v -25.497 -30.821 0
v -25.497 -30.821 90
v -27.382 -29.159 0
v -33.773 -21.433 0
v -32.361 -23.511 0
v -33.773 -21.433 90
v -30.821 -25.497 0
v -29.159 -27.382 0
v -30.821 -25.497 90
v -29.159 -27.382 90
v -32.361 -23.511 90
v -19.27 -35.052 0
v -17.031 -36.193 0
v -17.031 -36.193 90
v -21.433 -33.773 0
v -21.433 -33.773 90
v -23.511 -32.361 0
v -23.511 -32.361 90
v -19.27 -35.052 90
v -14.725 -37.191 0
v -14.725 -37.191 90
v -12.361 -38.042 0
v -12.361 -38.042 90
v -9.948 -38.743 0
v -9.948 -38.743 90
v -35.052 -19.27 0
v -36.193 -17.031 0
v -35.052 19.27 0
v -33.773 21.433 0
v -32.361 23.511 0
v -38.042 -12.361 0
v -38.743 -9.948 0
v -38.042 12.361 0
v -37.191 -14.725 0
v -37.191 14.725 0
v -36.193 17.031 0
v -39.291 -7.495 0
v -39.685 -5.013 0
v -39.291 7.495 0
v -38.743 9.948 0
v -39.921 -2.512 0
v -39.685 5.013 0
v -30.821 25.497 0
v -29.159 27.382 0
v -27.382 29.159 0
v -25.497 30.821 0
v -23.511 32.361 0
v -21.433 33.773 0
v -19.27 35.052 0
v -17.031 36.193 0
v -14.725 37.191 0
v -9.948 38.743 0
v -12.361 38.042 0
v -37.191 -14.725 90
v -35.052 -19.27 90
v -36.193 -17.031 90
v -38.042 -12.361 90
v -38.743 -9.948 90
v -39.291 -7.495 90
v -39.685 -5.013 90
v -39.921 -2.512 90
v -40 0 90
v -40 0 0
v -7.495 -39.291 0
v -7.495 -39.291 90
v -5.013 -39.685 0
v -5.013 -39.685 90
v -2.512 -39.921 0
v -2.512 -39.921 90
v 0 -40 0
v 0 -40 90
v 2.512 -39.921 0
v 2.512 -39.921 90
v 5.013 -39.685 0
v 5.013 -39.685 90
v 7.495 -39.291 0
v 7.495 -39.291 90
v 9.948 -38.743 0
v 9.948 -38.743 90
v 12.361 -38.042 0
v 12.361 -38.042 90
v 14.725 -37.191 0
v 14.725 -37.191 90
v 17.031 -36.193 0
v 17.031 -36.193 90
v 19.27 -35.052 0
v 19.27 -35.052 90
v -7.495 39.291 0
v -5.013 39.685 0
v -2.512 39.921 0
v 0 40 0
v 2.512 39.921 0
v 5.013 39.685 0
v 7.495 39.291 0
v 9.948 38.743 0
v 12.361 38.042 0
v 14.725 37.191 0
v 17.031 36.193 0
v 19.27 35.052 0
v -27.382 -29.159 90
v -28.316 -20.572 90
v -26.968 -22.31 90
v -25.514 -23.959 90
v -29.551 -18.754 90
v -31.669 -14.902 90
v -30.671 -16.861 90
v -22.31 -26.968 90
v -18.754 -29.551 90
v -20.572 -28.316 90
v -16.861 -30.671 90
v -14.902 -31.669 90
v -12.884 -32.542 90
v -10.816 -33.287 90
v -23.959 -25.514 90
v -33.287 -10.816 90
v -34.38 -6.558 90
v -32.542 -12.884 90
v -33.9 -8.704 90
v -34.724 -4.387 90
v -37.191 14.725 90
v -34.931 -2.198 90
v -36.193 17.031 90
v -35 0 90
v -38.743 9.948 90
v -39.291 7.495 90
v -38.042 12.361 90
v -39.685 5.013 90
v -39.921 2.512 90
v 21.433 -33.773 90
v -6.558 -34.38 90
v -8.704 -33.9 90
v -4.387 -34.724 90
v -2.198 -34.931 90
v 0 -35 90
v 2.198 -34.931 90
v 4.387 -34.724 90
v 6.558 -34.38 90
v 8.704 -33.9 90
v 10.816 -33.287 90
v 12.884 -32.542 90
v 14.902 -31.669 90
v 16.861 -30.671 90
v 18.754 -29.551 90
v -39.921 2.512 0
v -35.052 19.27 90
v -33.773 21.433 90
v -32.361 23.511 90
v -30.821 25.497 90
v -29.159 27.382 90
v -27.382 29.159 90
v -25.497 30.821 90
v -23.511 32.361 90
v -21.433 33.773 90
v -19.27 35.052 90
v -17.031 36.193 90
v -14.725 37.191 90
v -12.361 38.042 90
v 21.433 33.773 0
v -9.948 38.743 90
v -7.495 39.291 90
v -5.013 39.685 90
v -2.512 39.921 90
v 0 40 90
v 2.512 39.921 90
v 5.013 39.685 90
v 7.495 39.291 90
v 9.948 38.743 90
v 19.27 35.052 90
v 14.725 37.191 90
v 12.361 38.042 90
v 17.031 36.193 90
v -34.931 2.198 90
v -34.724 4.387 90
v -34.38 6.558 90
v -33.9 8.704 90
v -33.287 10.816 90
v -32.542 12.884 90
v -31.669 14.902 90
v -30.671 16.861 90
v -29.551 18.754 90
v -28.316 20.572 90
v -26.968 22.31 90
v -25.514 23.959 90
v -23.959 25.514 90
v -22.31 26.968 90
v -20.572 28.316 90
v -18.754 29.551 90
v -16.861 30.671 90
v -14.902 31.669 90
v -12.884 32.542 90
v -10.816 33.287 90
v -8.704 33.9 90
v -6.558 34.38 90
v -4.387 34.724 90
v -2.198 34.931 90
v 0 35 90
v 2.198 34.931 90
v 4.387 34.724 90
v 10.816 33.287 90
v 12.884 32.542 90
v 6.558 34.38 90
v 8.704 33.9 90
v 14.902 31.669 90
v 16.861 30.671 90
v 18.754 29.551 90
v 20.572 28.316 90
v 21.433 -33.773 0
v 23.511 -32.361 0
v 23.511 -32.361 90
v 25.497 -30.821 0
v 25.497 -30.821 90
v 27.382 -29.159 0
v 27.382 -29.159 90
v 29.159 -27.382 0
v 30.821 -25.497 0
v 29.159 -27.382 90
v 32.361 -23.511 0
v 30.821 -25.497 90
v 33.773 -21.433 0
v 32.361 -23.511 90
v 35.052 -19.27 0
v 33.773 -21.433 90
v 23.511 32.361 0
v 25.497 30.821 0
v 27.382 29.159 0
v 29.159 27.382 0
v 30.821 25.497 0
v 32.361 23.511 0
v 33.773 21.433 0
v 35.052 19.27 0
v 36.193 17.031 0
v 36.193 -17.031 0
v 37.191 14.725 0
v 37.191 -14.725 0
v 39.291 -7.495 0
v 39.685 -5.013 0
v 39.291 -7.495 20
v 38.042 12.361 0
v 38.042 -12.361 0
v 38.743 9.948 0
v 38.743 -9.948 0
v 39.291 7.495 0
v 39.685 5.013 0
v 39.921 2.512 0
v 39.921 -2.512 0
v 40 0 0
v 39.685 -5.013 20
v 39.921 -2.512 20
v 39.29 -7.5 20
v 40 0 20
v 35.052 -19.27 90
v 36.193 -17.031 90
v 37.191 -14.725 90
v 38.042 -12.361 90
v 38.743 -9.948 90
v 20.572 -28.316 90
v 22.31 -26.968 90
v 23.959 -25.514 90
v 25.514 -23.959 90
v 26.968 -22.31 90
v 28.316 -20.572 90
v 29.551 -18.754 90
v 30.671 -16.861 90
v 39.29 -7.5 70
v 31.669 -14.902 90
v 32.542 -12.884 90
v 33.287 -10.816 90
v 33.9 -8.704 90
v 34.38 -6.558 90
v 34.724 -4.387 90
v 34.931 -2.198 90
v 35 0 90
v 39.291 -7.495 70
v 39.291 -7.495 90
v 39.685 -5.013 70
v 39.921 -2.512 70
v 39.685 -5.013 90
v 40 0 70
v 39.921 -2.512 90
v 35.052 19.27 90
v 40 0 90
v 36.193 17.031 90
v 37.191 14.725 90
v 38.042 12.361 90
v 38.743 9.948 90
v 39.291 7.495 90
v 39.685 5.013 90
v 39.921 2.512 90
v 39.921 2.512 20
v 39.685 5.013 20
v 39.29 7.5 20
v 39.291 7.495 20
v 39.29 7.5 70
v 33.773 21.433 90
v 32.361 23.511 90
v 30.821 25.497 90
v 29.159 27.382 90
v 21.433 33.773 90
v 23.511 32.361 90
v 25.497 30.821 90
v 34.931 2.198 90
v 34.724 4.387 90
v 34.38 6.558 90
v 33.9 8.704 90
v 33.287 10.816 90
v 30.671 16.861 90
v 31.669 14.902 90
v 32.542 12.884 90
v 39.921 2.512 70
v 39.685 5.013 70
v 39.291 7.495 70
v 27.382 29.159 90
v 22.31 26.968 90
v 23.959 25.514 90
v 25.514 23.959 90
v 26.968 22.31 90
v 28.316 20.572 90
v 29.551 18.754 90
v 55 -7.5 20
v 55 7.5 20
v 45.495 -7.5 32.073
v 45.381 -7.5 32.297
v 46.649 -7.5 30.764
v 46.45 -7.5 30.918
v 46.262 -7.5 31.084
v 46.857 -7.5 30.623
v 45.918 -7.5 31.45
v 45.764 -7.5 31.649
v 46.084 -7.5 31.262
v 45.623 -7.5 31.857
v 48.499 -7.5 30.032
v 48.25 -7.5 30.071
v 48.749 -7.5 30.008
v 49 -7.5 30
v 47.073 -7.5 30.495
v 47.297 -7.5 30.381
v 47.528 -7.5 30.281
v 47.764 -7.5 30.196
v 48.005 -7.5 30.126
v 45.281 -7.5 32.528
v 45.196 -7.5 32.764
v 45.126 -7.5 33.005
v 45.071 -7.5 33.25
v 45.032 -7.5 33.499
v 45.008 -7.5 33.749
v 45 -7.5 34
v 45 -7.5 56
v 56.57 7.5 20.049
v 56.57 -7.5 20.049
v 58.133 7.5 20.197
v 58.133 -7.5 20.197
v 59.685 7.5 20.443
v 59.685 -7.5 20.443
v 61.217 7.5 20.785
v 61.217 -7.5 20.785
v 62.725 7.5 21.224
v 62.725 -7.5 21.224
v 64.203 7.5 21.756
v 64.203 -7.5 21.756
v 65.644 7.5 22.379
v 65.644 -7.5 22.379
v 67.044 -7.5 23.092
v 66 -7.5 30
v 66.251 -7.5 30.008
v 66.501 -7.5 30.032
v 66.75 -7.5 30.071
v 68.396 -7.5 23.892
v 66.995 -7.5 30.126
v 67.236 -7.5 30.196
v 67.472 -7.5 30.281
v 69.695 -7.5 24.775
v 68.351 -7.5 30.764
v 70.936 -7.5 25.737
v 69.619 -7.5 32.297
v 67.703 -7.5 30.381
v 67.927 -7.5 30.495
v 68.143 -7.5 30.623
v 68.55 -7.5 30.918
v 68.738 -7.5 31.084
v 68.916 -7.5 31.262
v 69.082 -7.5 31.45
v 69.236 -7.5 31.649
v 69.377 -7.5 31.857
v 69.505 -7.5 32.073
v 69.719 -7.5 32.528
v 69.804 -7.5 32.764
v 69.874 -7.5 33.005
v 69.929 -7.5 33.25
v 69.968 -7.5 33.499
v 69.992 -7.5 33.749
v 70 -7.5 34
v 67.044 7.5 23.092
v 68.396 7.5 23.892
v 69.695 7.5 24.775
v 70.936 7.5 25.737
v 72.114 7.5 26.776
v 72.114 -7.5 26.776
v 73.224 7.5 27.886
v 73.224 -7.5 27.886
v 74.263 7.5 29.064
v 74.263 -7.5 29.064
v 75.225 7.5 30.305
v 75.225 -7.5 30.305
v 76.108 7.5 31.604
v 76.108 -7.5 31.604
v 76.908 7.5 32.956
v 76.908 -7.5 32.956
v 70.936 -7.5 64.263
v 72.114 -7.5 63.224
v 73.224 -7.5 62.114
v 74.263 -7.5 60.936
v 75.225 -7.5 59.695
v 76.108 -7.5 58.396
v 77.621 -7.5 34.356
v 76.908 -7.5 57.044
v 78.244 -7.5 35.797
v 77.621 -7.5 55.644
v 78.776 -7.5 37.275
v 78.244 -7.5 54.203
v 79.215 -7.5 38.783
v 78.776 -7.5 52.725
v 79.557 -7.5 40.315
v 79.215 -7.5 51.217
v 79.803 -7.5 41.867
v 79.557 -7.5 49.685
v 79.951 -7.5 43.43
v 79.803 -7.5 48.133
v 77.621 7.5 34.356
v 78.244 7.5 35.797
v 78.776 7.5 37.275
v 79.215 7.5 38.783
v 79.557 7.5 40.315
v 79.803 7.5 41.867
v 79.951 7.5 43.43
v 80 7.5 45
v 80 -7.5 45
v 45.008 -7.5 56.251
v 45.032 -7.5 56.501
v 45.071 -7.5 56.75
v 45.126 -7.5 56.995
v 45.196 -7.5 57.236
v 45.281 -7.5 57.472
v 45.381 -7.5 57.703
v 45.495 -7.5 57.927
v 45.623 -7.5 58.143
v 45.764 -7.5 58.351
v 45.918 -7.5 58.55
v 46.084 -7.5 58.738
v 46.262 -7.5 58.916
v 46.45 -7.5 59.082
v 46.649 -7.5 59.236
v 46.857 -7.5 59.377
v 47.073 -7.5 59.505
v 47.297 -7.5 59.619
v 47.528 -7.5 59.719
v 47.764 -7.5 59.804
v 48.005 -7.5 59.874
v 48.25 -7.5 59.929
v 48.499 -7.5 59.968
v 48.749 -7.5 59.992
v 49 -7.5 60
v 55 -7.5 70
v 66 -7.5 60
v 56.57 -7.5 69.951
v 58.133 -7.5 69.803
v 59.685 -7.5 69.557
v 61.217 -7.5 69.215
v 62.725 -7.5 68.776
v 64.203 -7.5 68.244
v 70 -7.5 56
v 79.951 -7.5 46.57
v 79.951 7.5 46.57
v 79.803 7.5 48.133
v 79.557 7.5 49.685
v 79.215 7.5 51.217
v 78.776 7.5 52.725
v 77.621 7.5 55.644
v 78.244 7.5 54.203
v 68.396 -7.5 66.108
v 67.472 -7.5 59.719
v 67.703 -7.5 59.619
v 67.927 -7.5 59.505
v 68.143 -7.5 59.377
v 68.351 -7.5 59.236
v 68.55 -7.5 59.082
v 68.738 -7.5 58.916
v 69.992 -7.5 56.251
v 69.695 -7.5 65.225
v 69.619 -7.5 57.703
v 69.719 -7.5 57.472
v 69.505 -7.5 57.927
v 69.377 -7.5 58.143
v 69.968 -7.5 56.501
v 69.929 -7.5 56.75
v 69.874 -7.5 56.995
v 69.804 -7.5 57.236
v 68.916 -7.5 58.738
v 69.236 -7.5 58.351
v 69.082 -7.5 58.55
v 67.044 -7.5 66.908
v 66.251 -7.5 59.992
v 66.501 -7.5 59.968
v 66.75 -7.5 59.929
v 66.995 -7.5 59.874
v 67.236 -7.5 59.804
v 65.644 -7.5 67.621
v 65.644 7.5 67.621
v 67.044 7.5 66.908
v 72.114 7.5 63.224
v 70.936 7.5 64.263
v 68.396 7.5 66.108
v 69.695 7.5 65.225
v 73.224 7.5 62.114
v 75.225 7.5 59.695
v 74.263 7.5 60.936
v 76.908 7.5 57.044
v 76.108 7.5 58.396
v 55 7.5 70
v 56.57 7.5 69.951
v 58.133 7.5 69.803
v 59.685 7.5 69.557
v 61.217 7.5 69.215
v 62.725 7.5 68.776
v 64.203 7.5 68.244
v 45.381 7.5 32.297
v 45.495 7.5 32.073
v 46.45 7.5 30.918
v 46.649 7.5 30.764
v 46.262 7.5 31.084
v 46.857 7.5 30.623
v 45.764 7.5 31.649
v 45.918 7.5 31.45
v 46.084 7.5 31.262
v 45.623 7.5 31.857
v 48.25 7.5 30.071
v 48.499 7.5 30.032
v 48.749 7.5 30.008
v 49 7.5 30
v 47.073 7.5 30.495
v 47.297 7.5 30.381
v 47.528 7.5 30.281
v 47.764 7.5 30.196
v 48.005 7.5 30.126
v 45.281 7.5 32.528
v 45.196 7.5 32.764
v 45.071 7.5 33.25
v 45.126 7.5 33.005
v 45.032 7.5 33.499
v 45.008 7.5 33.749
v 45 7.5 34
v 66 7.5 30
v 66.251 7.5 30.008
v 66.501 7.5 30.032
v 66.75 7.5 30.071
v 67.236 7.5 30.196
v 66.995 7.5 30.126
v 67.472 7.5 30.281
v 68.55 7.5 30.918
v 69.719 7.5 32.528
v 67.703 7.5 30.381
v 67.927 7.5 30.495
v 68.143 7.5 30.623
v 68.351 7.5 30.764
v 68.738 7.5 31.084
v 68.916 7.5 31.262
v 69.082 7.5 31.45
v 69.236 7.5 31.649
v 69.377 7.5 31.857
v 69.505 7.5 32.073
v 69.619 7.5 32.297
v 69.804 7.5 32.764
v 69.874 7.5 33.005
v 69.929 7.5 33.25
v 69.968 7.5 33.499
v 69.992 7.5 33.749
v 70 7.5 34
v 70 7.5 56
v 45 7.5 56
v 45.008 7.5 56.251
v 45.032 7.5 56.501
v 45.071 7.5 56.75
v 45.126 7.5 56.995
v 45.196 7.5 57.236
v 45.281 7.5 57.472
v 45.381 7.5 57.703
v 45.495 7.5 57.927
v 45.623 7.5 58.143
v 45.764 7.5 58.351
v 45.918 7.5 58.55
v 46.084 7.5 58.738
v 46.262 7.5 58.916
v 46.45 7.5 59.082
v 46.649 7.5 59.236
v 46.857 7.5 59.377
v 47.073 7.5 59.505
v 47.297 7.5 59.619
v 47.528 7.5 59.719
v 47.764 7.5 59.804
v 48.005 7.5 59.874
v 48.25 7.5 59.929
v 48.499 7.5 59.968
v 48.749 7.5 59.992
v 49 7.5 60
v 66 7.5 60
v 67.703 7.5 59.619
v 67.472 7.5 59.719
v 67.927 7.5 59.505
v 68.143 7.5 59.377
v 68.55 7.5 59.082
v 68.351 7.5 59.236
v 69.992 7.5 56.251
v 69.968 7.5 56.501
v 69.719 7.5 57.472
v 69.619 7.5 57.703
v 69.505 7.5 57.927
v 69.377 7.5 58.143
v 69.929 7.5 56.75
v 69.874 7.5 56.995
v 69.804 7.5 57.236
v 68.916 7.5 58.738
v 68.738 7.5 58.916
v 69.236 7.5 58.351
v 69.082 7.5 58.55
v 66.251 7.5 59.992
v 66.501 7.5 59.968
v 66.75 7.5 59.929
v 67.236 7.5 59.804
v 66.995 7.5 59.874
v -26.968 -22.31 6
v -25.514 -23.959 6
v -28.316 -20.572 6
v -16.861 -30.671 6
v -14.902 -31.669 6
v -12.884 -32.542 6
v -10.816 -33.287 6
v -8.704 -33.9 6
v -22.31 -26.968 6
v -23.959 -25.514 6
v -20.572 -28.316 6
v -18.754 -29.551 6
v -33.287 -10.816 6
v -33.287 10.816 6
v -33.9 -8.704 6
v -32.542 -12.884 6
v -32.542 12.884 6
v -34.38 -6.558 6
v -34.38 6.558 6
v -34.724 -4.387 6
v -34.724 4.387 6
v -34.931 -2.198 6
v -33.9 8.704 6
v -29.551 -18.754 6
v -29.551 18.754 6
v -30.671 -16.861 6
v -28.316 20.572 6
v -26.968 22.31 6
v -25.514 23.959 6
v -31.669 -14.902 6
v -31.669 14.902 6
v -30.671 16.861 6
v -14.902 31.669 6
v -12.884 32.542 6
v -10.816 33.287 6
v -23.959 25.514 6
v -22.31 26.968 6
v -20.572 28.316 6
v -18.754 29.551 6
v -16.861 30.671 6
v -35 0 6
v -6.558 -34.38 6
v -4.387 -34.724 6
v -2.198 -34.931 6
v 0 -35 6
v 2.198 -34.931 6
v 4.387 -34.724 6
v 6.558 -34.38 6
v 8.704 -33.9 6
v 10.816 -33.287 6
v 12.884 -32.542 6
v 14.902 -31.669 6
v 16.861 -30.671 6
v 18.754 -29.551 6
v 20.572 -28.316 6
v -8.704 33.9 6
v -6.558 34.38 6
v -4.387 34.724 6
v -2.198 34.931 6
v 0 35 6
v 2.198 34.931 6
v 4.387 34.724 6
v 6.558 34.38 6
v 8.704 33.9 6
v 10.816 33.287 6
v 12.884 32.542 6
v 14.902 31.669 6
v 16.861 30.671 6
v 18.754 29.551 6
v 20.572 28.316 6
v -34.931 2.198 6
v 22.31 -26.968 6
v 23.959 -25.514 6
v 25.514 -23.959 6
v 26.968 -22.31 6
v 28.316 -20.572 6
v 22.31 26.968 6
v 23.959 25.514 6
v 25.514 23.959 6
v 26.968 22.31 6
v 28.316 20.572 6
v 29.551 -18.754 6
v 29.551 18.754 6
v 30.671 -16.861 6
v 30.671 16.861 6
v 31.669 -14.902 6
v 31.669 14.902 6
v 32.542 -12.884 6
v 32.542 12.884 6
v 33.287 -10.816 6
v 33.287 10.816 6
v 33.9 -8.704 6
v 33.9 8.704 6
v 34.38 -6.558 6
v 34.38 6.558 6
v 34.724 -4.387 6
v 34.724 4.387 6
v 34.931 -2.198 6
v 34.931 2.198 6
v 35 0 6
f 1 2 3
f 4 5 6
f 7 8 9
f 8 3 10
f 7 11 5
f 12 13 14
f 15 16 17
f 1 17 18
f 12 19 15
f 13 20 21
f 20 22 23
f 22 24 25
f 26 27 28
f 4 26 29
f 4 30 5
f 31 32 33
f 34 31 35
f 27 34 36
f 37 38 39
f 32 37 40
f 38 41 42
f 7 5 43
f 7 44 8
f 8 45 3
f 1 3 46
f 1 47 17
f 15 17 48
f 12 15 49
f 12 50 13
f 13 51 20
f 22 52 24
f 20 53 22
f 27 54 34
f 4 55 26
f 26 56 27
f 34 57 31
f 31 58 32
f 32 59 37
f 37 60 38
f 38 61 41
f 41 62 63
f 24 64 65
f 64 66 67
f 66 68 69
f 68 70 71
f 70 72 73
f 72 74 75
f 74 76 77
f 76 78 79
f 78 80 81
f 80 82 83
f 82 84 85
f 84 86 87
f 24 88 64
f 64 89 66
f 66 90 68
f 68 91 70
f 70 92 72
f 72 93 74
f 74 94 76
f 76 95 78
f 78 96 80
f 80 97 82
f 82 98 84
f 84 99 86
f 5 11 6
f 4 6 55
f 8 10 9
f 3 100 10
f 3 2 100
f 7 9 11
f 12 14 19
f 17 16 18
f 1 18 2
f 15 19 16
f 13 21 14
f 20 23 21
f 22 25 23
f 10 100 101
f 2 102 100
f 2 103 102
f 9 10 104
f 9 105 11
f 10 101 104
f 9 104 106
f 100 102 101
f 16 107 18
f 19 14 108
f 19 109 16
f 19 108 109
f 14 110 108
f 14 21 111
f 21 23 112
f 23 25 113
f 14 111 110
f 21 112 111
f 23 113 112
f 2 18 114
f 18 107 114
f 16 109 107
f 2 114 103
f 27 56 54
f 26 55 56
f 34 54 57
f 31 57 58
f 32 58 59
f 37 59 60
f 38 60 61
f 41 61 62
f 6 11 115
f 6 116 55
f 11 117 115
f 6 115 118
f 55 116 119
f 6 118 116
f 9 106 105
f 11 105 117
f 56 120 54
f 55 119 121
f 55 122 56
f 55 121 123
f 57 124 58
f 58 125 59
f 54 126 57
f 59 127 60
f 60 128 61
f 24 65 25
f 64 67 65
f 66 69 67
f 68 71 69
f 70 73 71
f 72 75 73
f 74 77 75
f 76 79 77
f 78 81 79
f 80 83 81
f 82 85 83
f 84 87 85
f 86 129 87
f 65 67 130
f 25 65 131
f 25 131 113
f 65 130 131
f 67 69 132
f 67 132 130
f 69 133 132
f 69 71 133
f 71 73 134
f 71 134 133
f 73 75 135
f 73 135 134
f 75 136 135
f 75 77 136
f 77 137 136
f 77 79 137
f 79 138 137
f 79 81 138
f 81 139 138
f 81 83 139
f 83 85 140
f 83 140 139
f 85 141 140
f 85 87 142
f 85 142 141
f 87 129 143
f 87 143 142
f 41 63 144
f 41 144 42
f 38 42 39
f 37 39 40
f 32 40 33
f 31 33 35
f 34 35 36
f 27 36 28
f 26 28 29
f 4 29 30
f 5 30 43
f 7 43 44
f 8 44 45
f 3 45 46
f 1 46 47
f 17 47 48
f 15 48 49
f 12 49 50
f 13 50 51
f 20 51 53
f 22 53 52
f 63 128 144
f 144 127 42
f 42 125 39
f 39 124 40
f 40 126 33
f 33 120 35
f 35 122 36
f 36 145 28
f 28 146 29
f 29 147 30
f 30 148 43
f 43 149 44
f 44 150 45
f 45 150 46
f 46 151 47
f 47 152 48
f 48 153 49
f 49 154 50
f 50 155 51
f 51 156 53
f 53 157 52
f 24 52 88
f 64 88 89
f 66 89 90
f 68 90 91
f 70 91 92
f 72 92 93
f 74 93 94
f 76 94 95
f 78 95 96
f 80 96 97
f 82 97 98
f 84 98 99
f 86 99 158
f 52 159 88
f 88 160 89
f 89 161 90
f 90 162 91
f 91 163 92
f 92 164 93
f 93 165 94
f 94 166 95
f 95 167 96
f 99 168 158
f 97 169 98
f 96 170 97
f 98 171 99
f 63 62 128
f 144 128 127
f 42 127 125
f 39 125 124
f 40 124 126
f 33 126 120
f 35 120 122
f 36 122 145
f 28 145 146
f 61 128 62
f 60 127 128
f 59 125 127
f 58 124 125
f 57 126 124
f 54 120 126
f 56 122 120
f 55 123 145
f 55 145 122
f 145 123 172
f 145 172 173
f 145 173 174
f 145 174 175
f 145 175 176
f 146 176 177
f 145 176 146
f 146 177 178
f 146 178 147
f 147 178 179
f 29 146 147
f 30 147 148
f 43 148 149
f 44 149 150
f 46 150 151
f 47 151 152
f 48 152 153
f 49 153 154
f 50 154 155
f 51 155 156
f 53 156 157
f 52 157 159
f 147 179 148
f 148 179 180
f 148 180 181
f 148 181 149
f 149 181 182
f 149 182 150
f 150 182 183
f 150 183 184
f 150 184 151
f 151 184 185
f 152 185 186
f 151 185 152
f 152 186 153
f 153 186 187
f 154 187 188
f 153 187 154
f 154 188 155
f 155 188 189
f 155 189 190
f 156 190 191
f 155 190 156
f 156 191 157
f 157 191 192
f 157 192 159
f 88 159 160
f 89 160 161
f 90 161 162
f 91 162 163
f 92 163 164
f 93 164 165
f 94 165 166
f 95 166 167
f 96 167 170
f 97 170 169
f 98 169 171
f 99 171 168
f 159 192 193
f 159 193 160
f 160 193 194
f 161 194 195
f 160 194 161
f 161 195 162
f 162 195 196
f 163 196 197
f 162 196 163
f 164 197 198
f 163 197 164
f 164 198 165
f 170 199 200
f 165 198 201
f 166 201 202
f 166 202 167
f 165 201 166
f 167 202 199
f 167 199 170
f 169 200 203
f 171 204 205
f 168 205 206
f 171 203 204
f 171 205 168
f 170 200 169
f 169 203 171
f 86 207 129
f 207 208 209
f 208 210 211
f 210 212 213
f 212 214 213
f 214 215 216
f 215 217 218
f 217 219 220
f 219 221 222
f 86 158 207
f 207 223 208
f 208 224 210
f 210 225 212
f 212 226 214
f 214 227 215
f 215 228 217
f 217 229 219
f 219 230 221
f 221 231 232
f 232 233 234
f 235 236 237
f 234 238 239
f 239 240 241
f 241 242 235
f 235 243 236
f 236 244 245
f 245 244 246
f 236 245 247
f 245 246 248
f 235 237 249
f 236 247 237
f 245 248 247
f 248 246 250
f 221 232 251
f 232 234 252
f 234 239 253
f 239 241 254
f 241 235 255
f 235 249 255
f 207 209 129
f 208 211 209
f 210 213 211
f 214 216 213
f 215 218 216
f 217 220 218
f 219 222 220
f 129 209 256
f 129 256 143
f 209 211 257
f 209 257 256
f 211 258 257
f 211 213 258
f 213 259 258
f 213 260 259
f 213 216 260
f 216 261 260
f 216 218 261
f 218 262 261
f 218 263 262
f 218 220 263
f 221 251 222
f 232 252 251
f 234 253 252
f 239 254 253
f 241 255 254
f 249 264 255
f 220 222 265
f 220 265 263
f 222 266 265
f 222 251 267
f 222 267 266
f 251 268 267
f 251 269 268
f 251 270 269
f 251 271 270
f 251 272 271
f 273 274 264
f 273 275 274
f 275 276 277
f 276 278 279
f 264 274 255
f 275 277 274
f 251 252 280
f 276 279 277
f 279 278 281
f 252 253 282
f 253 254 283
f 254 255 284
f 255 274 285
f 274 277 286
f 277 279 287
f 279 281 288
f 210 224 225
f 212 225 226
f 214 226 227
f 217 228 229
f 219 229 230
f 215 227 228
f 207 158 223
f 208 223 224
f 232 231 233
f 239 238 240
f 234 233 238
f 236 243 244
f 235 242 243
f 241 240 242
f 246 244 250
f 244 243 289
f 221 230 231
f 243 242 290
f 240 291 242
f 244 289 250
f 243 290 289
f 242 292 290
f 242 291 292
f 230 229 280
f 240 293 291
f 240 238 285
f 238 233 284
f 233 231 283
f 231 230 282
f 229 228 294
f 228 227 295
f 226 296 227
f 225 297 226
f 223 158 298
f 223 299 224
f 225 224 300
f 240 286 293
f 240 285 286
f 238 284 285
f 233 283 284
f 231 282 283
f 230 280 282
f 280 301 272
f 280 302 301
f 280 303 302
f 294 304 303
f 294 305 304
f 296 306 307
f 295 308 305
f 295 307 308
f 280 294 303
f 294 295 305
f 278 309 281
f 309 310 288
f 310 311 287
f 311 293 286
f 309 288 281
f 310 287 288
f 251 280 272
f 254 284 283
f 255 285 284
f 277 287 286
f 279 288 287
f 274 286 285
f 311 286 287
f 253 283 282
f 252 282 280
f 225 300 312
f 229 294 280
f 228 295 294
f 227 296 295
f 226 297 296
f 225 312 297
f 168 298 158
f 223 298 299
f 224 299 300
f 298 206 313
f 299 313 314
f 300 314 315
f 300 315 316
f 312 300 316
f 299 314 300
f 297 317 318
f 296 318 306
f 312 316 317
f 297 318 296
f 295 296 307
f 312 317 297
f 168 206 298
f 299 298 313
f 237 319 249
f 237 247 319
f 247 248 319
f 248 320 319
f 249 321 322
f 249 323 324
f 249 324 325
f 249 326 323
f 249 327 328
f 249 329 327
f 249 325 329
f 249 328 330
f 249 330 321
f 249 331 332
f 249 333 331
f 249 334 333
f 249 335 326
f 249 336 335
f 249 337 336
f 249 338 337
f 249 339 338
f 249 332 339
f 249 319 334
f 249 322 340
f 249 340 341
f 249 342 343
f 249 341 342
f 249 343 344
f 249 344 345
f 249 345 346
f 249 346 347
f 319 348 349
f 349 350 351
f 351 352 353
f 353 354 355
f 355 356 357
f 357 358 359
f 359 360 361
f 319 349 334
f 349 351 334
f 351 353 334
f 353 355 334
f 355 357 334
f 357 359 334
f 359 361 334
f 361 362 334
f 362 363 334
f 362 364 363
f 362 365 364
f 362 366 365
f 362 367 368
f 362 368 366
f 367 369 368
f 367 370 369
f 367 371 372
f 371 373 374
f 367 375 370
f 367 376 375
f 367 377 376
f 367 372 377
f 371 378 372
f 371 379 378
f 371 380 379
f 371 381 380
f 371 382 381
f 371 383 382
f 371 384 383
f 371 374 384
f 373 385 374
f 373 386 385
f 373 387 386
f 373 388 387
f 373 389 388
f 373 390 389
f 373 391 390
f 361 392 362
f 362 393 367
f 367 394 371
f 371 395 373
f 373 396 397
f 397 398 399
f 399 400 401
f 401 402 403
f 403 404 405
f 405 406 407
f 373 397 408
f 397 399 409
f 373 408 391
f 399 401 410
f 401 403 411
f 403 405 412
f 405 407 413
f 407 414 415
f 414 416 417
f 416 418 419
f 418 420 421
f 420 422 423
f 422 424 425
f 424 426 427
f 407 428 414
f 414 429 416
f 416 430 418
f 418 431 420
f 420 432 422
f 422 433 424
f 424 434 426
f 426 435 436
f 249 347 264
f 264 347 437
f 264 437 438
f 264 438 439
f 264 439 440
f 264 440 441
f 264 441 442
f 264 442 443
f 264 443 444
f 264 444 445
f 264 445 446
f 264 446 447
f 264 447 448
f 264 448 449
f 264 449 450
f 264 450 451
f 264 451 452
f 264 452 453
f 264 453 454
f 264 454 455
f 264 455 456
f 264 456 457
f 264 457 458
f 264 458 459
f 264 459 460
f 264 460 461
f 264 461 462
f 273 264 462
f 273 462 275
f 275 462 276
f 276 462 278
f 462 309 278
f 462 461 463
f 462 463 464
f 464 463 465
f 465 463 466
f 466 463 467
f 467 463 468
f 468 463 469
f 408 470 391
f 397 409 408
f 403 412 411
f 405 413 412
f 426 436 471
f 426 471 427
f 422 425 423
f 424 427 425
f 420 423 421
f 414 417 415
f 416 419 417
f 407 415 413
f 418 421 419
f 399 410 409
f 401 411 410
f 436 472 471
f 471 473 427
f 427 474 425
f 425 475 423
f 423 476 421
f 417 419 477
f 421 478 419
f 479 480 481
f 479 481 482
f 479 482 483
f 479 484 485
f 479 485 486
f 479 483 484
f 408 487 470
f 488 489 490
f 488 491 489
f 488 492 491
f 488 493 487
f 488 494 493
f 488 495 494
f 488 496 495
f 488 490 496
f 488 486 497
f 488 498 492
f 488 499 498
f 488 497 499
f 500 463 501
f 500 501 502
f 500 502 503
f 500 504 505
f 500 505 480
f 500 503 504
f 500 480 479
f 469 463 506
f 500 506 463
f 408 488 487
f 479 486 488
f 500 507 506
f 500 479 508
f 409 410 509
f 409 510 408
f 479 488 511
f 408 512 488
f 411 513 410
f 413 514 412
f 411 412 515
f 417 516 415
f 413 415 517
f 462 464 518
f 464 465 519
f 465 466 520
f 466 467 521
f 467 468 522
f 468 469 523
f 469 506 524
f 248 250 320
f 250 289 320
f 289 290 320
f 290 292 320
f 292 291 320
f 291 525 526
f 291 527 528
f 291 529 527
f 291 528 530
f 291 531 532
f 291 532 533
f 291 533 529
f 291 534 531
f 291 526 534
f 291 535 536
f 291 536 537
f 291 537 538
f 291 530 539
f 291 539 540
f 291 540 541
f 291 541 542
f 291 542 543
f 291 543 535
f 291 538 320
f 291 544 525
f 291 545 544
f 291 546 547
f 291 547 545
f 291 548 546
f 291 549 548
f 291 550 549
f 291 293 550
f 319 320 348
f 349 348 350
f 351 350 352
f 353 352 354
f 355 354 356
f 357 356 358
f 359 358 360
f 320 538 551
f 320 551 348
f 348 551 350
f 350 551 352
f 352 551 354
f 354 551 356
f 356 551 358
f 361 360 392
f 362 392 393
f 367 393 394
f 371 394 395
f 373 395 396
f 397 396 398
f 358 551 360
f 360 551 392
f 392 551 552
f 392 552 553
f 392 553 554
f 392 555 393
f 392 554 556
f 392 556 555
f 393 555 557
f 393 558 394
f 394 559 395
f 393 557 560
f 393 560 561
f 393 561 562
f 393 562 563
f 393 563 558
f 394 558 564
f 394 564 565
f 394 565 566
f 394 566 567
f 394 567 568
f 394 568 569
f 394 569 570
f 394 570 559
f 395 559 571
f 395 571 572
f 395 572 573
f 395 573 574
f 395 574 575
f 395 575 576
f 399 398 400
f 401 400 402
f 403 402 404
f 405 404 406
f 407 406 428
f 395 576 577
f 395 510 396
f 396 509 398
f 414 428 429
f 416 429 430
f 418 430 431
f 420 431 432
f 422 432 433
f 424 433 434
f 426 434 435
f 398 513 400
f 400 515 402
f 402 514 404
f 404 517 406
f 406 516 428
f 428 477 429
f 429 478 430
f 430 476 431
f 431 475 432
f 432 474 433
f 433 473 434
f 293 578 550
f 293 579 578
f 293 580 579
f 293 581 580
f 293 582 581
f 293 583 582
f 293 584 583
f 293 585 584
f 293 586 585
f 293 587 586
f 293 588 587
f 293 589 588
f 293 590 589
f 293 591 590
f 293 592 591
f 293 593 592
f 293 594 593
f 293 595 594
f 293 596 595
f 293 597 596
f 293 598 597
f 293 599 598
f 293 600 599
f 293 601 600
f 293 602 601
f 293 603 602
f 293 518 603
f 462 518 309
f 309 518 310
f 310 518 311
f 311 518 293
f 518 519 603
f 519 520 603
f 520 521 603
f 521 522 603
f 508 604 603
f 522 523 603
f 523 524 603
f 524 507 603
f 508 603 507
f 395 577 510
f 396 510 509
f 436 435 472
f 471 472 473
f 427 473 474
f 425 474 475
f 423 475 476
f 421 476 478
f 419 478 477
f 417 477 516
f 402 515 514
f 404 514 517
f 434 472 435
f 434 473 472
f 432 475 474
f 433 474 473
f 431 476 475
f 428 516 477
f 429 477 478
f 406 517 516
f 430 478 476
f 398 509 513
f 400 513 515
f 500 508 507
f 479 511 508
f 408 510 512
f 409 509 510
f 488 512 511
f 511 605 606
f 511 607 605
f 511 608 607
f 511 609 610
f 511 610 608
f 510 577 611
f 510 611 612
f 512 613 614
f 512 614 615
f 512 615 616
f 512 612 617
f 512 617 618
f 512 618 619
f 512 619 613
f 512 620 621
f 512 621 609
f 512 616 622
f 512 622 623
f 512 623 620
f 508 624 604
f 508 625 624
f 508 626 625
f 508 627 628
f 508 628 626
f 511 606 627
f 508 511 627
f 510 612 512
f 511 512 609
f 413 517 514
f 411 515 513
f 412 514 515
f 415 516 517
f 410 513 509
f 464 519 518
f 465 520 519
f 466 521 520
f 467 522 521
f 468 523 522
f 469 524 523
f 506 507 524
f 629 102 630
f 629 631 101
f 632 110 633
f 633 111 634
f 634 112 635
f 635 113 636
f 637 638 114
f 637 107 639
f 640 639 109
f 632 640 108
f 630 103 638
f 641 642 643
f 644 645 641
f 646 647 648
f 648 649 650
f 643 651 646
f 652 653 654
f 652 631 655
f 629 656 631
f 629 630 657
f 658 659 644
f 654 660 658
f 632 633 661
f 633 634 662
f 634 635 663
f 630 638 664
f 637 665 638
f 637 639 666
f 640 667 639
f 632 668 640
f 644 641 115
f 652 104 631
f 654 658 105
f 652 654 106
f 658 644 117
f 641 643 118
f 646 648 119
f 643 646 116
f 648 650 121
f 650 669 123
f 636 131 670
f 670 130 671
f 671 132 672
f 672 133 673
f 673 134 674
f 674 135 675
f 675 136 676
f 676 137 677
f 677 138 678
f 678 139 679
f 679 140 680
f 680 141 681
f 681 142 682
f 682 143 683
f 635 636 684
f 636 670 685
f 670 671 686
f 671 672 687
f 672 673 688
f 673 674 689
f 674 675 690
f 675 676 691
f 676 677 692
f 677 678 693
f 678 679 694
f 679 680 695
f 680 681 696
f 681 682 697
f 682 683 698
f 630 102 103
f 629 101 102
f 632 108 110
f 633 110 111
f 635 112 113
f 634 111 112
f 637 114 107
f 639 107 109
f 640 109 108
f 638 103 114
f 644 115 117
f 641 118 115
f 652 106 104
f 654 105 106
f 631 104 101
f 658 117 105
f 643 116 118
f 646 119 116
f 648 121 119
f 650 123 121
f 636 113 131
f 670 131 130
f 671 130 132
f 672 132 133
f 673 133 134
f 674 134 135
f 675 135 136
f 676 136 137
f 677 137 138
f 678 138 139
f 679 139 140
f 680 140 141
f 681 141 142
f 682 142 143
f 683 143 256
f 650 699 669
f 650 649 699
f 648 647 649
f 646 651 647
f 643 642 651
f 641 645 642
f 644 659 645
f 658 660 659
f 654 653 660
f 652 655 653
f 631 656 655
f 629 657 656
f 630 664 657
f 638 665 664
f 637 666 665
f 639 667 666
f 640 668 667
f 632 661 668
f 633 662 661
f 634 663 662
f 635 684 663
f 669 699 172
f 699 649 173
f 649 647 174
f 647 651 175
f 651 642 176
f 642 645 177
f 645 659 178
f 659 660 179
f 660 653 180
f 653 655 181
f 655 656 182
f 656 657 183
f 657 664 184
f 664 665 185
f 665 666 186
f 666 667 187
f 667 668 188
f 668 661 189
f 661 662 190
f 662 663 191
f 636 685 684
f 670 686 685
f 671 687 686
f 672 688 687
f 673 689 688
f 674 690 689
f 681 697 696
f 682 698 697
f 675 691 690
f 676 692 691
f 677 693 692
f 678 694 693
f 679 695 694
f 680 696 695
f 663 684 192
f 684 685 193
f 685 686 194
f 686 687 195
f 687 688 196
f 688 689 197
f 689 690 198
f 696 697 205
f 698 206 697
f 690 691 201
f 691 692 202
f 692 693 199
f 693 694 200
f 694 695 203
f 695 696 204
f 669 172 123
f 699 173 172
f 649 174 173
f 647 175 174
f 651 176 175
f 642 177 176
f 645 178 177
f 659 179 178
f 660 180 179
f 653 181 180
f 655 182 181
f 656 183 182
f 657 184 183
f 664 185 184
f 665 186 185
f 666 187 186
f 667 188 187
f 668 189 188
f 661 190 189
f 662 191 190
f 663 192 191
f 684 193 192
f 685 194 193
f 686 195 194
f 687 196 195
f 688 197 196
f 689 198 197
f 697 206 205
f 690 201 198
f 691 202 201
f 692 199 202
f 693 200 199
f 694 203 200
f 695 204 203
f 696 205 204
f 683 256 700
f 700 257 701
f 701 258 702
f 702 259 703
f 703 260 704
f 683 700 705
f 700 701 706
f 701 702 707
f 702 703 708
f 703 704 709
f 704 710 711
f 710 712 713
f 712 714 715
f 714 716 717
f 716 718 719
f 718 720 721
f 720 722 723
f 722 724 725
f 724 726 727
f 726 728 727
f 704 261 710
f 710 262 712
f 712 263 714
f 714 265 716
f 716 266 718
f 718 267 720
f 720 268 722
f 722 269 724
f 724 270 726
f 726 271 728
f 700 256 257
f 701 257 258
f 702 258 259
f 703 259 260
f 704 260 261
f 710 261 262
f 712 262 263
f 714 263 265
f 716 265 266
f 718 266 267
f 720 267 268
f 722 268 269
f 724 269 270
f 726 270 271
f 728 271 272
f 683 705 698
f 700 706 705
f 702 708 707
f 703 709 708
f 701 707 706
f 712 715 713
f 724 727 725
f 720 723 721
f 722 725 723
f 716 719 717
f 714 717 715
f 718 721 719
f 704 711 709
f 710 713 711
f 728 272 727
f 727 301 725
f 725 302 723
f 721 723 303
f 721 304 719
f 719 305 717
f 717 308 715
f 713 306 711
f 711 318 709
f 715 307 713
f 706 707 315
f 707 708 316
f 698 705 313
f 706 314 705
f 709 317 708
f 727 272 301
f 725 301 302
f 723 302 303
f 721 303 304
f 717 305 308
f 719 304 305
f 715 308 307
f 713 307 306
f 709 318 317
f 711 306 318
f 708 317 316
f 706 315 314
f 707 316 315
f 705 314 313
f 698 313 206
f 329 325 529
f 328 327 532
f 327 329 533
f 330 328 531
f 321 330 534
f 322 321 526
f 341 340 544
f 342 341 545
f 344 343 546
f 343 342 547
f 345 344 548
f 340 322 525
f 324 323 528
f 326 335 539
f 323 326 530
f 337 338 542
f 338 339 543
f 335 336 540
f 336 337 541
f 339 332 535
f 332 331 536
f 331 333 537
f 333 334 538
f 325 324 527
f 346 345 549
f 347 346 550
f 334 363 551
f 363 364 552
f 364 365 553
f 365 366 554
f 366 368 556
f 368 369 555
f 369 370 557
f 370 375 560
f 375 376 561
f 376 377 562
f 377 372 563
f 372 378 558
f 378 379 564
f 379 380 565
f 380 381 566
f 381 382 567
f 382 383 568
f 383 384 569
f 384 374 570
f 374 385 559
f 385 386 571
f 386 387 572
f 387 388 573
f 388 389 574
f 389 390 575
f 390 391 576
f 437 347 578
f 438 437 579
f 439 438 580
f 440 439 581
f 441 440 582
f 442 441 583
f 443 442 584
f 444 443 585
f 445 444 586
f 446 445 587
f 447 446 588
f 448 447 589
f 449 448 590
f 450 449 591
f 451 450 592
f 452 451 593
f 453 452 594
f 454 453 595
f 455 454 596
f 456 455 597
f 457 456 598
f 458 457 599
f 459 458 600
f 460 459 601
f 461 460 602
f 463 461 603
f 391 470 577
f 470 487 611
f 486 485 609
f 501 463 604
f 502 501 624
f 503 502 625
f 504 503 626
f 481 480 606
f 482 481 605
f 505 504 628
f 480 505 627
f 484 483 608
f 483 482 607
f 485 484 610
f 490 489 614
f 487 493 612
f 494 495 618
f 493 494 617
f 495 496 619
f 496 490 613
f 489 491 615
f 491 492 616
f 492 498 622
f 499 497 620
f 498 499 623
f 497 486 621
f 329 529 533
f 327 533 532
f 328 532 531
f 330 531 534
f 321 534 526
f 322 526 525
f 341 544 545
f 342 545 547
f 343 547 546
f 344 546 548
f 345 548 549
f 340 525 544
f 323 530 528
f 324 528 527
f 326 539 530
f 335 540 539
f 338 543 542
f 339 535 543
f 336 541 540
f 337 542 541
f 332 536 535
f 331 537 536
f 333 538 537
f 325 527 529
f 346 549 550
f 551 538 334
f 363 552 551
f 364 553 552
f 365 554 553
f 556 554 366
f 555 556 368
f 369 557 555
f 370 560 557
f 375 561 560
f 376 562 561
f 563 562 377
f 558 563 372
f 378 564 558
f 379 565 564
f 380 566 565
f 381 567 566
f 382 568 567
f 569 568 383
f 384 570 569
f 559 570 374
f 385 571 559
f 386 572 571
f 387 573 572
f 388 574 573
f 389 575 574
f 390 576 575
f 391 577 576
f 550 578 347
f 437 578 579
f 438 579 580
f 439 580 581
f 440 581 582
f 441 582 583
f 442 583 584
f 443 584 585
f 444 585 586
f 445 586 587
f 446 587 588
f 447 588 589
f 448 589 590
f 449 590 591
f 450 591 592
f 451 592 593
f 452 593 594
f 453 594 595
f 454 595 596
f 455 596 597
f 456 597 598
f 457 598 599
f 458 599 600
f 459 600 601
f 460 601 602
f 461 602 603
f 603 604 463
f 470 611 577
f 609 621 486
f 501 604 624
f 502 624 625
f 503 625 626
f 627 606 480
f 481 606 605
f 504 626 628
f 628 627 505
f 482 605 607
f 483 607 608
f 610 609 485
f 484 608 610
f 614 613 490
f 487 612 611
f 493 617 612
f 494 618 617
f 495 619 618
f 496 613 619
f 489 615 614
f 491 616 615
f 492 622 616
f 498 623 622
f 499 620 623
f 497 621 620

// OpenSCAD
$fn = 100;

difference() {
    // 1. 本体の外筒と取手の外形を結合
    union() {
        // マグ本体の外筒 (外径80mm = 半径40mm, 高さ90mm)
        cylinder(h=90, r=40);

        // 取手のソリッド外形 (高さ50mm, 厚み15mm)
        // 高さ方向の中央 (Z=45) に配置、+X軸方向に伸ばす
        translate([0, 0, 45])
        rotate([90, 0, 0])
        linear_extrude(height=15, center=true)
        hull() {
            // 本体にしっかり食い込ませるため X=30 から配置
            translate([30, -25]) square([25, 50]); 
            // 外側は半円 (D字形状、右端は X=80)
            translate([55, 0]) circle(r=25);        
        }
    }

    // 2. 内側の中空化 (内径70mm = 半径35mm, 底面の厚み6mm)
    // Zファイティングを防ぐため、上方向(Z)は十分に長く突き抜けさせる
    translate([0, 0, 6])
        cylinder(h=100, r=35);

    // 3. 取手の内側空間のくり抜き (高さ30mm × 幅25mm、持ちやすい角丸形状)
    // 確実に貫通させるため、厚み(height)は取手より厚い20mmに設定
    translate([0, 0, 45])
    rotate([90, 0, 0])
    linear_extrude(height=20, center=true)
    hull() {
        // 幅 25mm (X: 45mm から 70mm), 高さ 30mm (Y: -15mm から 15mm)
        // 角の丸み半径 r=4mm、本体接続部の肉厚5mmを確保して強度を向上
        translate([49, -11]) circle(r=4);
        translate([66, -11]) circle(r=4);
        translate([66, 11]) circle(r=4);
        translate([49, 11]) circle(r=4);
    }
}
